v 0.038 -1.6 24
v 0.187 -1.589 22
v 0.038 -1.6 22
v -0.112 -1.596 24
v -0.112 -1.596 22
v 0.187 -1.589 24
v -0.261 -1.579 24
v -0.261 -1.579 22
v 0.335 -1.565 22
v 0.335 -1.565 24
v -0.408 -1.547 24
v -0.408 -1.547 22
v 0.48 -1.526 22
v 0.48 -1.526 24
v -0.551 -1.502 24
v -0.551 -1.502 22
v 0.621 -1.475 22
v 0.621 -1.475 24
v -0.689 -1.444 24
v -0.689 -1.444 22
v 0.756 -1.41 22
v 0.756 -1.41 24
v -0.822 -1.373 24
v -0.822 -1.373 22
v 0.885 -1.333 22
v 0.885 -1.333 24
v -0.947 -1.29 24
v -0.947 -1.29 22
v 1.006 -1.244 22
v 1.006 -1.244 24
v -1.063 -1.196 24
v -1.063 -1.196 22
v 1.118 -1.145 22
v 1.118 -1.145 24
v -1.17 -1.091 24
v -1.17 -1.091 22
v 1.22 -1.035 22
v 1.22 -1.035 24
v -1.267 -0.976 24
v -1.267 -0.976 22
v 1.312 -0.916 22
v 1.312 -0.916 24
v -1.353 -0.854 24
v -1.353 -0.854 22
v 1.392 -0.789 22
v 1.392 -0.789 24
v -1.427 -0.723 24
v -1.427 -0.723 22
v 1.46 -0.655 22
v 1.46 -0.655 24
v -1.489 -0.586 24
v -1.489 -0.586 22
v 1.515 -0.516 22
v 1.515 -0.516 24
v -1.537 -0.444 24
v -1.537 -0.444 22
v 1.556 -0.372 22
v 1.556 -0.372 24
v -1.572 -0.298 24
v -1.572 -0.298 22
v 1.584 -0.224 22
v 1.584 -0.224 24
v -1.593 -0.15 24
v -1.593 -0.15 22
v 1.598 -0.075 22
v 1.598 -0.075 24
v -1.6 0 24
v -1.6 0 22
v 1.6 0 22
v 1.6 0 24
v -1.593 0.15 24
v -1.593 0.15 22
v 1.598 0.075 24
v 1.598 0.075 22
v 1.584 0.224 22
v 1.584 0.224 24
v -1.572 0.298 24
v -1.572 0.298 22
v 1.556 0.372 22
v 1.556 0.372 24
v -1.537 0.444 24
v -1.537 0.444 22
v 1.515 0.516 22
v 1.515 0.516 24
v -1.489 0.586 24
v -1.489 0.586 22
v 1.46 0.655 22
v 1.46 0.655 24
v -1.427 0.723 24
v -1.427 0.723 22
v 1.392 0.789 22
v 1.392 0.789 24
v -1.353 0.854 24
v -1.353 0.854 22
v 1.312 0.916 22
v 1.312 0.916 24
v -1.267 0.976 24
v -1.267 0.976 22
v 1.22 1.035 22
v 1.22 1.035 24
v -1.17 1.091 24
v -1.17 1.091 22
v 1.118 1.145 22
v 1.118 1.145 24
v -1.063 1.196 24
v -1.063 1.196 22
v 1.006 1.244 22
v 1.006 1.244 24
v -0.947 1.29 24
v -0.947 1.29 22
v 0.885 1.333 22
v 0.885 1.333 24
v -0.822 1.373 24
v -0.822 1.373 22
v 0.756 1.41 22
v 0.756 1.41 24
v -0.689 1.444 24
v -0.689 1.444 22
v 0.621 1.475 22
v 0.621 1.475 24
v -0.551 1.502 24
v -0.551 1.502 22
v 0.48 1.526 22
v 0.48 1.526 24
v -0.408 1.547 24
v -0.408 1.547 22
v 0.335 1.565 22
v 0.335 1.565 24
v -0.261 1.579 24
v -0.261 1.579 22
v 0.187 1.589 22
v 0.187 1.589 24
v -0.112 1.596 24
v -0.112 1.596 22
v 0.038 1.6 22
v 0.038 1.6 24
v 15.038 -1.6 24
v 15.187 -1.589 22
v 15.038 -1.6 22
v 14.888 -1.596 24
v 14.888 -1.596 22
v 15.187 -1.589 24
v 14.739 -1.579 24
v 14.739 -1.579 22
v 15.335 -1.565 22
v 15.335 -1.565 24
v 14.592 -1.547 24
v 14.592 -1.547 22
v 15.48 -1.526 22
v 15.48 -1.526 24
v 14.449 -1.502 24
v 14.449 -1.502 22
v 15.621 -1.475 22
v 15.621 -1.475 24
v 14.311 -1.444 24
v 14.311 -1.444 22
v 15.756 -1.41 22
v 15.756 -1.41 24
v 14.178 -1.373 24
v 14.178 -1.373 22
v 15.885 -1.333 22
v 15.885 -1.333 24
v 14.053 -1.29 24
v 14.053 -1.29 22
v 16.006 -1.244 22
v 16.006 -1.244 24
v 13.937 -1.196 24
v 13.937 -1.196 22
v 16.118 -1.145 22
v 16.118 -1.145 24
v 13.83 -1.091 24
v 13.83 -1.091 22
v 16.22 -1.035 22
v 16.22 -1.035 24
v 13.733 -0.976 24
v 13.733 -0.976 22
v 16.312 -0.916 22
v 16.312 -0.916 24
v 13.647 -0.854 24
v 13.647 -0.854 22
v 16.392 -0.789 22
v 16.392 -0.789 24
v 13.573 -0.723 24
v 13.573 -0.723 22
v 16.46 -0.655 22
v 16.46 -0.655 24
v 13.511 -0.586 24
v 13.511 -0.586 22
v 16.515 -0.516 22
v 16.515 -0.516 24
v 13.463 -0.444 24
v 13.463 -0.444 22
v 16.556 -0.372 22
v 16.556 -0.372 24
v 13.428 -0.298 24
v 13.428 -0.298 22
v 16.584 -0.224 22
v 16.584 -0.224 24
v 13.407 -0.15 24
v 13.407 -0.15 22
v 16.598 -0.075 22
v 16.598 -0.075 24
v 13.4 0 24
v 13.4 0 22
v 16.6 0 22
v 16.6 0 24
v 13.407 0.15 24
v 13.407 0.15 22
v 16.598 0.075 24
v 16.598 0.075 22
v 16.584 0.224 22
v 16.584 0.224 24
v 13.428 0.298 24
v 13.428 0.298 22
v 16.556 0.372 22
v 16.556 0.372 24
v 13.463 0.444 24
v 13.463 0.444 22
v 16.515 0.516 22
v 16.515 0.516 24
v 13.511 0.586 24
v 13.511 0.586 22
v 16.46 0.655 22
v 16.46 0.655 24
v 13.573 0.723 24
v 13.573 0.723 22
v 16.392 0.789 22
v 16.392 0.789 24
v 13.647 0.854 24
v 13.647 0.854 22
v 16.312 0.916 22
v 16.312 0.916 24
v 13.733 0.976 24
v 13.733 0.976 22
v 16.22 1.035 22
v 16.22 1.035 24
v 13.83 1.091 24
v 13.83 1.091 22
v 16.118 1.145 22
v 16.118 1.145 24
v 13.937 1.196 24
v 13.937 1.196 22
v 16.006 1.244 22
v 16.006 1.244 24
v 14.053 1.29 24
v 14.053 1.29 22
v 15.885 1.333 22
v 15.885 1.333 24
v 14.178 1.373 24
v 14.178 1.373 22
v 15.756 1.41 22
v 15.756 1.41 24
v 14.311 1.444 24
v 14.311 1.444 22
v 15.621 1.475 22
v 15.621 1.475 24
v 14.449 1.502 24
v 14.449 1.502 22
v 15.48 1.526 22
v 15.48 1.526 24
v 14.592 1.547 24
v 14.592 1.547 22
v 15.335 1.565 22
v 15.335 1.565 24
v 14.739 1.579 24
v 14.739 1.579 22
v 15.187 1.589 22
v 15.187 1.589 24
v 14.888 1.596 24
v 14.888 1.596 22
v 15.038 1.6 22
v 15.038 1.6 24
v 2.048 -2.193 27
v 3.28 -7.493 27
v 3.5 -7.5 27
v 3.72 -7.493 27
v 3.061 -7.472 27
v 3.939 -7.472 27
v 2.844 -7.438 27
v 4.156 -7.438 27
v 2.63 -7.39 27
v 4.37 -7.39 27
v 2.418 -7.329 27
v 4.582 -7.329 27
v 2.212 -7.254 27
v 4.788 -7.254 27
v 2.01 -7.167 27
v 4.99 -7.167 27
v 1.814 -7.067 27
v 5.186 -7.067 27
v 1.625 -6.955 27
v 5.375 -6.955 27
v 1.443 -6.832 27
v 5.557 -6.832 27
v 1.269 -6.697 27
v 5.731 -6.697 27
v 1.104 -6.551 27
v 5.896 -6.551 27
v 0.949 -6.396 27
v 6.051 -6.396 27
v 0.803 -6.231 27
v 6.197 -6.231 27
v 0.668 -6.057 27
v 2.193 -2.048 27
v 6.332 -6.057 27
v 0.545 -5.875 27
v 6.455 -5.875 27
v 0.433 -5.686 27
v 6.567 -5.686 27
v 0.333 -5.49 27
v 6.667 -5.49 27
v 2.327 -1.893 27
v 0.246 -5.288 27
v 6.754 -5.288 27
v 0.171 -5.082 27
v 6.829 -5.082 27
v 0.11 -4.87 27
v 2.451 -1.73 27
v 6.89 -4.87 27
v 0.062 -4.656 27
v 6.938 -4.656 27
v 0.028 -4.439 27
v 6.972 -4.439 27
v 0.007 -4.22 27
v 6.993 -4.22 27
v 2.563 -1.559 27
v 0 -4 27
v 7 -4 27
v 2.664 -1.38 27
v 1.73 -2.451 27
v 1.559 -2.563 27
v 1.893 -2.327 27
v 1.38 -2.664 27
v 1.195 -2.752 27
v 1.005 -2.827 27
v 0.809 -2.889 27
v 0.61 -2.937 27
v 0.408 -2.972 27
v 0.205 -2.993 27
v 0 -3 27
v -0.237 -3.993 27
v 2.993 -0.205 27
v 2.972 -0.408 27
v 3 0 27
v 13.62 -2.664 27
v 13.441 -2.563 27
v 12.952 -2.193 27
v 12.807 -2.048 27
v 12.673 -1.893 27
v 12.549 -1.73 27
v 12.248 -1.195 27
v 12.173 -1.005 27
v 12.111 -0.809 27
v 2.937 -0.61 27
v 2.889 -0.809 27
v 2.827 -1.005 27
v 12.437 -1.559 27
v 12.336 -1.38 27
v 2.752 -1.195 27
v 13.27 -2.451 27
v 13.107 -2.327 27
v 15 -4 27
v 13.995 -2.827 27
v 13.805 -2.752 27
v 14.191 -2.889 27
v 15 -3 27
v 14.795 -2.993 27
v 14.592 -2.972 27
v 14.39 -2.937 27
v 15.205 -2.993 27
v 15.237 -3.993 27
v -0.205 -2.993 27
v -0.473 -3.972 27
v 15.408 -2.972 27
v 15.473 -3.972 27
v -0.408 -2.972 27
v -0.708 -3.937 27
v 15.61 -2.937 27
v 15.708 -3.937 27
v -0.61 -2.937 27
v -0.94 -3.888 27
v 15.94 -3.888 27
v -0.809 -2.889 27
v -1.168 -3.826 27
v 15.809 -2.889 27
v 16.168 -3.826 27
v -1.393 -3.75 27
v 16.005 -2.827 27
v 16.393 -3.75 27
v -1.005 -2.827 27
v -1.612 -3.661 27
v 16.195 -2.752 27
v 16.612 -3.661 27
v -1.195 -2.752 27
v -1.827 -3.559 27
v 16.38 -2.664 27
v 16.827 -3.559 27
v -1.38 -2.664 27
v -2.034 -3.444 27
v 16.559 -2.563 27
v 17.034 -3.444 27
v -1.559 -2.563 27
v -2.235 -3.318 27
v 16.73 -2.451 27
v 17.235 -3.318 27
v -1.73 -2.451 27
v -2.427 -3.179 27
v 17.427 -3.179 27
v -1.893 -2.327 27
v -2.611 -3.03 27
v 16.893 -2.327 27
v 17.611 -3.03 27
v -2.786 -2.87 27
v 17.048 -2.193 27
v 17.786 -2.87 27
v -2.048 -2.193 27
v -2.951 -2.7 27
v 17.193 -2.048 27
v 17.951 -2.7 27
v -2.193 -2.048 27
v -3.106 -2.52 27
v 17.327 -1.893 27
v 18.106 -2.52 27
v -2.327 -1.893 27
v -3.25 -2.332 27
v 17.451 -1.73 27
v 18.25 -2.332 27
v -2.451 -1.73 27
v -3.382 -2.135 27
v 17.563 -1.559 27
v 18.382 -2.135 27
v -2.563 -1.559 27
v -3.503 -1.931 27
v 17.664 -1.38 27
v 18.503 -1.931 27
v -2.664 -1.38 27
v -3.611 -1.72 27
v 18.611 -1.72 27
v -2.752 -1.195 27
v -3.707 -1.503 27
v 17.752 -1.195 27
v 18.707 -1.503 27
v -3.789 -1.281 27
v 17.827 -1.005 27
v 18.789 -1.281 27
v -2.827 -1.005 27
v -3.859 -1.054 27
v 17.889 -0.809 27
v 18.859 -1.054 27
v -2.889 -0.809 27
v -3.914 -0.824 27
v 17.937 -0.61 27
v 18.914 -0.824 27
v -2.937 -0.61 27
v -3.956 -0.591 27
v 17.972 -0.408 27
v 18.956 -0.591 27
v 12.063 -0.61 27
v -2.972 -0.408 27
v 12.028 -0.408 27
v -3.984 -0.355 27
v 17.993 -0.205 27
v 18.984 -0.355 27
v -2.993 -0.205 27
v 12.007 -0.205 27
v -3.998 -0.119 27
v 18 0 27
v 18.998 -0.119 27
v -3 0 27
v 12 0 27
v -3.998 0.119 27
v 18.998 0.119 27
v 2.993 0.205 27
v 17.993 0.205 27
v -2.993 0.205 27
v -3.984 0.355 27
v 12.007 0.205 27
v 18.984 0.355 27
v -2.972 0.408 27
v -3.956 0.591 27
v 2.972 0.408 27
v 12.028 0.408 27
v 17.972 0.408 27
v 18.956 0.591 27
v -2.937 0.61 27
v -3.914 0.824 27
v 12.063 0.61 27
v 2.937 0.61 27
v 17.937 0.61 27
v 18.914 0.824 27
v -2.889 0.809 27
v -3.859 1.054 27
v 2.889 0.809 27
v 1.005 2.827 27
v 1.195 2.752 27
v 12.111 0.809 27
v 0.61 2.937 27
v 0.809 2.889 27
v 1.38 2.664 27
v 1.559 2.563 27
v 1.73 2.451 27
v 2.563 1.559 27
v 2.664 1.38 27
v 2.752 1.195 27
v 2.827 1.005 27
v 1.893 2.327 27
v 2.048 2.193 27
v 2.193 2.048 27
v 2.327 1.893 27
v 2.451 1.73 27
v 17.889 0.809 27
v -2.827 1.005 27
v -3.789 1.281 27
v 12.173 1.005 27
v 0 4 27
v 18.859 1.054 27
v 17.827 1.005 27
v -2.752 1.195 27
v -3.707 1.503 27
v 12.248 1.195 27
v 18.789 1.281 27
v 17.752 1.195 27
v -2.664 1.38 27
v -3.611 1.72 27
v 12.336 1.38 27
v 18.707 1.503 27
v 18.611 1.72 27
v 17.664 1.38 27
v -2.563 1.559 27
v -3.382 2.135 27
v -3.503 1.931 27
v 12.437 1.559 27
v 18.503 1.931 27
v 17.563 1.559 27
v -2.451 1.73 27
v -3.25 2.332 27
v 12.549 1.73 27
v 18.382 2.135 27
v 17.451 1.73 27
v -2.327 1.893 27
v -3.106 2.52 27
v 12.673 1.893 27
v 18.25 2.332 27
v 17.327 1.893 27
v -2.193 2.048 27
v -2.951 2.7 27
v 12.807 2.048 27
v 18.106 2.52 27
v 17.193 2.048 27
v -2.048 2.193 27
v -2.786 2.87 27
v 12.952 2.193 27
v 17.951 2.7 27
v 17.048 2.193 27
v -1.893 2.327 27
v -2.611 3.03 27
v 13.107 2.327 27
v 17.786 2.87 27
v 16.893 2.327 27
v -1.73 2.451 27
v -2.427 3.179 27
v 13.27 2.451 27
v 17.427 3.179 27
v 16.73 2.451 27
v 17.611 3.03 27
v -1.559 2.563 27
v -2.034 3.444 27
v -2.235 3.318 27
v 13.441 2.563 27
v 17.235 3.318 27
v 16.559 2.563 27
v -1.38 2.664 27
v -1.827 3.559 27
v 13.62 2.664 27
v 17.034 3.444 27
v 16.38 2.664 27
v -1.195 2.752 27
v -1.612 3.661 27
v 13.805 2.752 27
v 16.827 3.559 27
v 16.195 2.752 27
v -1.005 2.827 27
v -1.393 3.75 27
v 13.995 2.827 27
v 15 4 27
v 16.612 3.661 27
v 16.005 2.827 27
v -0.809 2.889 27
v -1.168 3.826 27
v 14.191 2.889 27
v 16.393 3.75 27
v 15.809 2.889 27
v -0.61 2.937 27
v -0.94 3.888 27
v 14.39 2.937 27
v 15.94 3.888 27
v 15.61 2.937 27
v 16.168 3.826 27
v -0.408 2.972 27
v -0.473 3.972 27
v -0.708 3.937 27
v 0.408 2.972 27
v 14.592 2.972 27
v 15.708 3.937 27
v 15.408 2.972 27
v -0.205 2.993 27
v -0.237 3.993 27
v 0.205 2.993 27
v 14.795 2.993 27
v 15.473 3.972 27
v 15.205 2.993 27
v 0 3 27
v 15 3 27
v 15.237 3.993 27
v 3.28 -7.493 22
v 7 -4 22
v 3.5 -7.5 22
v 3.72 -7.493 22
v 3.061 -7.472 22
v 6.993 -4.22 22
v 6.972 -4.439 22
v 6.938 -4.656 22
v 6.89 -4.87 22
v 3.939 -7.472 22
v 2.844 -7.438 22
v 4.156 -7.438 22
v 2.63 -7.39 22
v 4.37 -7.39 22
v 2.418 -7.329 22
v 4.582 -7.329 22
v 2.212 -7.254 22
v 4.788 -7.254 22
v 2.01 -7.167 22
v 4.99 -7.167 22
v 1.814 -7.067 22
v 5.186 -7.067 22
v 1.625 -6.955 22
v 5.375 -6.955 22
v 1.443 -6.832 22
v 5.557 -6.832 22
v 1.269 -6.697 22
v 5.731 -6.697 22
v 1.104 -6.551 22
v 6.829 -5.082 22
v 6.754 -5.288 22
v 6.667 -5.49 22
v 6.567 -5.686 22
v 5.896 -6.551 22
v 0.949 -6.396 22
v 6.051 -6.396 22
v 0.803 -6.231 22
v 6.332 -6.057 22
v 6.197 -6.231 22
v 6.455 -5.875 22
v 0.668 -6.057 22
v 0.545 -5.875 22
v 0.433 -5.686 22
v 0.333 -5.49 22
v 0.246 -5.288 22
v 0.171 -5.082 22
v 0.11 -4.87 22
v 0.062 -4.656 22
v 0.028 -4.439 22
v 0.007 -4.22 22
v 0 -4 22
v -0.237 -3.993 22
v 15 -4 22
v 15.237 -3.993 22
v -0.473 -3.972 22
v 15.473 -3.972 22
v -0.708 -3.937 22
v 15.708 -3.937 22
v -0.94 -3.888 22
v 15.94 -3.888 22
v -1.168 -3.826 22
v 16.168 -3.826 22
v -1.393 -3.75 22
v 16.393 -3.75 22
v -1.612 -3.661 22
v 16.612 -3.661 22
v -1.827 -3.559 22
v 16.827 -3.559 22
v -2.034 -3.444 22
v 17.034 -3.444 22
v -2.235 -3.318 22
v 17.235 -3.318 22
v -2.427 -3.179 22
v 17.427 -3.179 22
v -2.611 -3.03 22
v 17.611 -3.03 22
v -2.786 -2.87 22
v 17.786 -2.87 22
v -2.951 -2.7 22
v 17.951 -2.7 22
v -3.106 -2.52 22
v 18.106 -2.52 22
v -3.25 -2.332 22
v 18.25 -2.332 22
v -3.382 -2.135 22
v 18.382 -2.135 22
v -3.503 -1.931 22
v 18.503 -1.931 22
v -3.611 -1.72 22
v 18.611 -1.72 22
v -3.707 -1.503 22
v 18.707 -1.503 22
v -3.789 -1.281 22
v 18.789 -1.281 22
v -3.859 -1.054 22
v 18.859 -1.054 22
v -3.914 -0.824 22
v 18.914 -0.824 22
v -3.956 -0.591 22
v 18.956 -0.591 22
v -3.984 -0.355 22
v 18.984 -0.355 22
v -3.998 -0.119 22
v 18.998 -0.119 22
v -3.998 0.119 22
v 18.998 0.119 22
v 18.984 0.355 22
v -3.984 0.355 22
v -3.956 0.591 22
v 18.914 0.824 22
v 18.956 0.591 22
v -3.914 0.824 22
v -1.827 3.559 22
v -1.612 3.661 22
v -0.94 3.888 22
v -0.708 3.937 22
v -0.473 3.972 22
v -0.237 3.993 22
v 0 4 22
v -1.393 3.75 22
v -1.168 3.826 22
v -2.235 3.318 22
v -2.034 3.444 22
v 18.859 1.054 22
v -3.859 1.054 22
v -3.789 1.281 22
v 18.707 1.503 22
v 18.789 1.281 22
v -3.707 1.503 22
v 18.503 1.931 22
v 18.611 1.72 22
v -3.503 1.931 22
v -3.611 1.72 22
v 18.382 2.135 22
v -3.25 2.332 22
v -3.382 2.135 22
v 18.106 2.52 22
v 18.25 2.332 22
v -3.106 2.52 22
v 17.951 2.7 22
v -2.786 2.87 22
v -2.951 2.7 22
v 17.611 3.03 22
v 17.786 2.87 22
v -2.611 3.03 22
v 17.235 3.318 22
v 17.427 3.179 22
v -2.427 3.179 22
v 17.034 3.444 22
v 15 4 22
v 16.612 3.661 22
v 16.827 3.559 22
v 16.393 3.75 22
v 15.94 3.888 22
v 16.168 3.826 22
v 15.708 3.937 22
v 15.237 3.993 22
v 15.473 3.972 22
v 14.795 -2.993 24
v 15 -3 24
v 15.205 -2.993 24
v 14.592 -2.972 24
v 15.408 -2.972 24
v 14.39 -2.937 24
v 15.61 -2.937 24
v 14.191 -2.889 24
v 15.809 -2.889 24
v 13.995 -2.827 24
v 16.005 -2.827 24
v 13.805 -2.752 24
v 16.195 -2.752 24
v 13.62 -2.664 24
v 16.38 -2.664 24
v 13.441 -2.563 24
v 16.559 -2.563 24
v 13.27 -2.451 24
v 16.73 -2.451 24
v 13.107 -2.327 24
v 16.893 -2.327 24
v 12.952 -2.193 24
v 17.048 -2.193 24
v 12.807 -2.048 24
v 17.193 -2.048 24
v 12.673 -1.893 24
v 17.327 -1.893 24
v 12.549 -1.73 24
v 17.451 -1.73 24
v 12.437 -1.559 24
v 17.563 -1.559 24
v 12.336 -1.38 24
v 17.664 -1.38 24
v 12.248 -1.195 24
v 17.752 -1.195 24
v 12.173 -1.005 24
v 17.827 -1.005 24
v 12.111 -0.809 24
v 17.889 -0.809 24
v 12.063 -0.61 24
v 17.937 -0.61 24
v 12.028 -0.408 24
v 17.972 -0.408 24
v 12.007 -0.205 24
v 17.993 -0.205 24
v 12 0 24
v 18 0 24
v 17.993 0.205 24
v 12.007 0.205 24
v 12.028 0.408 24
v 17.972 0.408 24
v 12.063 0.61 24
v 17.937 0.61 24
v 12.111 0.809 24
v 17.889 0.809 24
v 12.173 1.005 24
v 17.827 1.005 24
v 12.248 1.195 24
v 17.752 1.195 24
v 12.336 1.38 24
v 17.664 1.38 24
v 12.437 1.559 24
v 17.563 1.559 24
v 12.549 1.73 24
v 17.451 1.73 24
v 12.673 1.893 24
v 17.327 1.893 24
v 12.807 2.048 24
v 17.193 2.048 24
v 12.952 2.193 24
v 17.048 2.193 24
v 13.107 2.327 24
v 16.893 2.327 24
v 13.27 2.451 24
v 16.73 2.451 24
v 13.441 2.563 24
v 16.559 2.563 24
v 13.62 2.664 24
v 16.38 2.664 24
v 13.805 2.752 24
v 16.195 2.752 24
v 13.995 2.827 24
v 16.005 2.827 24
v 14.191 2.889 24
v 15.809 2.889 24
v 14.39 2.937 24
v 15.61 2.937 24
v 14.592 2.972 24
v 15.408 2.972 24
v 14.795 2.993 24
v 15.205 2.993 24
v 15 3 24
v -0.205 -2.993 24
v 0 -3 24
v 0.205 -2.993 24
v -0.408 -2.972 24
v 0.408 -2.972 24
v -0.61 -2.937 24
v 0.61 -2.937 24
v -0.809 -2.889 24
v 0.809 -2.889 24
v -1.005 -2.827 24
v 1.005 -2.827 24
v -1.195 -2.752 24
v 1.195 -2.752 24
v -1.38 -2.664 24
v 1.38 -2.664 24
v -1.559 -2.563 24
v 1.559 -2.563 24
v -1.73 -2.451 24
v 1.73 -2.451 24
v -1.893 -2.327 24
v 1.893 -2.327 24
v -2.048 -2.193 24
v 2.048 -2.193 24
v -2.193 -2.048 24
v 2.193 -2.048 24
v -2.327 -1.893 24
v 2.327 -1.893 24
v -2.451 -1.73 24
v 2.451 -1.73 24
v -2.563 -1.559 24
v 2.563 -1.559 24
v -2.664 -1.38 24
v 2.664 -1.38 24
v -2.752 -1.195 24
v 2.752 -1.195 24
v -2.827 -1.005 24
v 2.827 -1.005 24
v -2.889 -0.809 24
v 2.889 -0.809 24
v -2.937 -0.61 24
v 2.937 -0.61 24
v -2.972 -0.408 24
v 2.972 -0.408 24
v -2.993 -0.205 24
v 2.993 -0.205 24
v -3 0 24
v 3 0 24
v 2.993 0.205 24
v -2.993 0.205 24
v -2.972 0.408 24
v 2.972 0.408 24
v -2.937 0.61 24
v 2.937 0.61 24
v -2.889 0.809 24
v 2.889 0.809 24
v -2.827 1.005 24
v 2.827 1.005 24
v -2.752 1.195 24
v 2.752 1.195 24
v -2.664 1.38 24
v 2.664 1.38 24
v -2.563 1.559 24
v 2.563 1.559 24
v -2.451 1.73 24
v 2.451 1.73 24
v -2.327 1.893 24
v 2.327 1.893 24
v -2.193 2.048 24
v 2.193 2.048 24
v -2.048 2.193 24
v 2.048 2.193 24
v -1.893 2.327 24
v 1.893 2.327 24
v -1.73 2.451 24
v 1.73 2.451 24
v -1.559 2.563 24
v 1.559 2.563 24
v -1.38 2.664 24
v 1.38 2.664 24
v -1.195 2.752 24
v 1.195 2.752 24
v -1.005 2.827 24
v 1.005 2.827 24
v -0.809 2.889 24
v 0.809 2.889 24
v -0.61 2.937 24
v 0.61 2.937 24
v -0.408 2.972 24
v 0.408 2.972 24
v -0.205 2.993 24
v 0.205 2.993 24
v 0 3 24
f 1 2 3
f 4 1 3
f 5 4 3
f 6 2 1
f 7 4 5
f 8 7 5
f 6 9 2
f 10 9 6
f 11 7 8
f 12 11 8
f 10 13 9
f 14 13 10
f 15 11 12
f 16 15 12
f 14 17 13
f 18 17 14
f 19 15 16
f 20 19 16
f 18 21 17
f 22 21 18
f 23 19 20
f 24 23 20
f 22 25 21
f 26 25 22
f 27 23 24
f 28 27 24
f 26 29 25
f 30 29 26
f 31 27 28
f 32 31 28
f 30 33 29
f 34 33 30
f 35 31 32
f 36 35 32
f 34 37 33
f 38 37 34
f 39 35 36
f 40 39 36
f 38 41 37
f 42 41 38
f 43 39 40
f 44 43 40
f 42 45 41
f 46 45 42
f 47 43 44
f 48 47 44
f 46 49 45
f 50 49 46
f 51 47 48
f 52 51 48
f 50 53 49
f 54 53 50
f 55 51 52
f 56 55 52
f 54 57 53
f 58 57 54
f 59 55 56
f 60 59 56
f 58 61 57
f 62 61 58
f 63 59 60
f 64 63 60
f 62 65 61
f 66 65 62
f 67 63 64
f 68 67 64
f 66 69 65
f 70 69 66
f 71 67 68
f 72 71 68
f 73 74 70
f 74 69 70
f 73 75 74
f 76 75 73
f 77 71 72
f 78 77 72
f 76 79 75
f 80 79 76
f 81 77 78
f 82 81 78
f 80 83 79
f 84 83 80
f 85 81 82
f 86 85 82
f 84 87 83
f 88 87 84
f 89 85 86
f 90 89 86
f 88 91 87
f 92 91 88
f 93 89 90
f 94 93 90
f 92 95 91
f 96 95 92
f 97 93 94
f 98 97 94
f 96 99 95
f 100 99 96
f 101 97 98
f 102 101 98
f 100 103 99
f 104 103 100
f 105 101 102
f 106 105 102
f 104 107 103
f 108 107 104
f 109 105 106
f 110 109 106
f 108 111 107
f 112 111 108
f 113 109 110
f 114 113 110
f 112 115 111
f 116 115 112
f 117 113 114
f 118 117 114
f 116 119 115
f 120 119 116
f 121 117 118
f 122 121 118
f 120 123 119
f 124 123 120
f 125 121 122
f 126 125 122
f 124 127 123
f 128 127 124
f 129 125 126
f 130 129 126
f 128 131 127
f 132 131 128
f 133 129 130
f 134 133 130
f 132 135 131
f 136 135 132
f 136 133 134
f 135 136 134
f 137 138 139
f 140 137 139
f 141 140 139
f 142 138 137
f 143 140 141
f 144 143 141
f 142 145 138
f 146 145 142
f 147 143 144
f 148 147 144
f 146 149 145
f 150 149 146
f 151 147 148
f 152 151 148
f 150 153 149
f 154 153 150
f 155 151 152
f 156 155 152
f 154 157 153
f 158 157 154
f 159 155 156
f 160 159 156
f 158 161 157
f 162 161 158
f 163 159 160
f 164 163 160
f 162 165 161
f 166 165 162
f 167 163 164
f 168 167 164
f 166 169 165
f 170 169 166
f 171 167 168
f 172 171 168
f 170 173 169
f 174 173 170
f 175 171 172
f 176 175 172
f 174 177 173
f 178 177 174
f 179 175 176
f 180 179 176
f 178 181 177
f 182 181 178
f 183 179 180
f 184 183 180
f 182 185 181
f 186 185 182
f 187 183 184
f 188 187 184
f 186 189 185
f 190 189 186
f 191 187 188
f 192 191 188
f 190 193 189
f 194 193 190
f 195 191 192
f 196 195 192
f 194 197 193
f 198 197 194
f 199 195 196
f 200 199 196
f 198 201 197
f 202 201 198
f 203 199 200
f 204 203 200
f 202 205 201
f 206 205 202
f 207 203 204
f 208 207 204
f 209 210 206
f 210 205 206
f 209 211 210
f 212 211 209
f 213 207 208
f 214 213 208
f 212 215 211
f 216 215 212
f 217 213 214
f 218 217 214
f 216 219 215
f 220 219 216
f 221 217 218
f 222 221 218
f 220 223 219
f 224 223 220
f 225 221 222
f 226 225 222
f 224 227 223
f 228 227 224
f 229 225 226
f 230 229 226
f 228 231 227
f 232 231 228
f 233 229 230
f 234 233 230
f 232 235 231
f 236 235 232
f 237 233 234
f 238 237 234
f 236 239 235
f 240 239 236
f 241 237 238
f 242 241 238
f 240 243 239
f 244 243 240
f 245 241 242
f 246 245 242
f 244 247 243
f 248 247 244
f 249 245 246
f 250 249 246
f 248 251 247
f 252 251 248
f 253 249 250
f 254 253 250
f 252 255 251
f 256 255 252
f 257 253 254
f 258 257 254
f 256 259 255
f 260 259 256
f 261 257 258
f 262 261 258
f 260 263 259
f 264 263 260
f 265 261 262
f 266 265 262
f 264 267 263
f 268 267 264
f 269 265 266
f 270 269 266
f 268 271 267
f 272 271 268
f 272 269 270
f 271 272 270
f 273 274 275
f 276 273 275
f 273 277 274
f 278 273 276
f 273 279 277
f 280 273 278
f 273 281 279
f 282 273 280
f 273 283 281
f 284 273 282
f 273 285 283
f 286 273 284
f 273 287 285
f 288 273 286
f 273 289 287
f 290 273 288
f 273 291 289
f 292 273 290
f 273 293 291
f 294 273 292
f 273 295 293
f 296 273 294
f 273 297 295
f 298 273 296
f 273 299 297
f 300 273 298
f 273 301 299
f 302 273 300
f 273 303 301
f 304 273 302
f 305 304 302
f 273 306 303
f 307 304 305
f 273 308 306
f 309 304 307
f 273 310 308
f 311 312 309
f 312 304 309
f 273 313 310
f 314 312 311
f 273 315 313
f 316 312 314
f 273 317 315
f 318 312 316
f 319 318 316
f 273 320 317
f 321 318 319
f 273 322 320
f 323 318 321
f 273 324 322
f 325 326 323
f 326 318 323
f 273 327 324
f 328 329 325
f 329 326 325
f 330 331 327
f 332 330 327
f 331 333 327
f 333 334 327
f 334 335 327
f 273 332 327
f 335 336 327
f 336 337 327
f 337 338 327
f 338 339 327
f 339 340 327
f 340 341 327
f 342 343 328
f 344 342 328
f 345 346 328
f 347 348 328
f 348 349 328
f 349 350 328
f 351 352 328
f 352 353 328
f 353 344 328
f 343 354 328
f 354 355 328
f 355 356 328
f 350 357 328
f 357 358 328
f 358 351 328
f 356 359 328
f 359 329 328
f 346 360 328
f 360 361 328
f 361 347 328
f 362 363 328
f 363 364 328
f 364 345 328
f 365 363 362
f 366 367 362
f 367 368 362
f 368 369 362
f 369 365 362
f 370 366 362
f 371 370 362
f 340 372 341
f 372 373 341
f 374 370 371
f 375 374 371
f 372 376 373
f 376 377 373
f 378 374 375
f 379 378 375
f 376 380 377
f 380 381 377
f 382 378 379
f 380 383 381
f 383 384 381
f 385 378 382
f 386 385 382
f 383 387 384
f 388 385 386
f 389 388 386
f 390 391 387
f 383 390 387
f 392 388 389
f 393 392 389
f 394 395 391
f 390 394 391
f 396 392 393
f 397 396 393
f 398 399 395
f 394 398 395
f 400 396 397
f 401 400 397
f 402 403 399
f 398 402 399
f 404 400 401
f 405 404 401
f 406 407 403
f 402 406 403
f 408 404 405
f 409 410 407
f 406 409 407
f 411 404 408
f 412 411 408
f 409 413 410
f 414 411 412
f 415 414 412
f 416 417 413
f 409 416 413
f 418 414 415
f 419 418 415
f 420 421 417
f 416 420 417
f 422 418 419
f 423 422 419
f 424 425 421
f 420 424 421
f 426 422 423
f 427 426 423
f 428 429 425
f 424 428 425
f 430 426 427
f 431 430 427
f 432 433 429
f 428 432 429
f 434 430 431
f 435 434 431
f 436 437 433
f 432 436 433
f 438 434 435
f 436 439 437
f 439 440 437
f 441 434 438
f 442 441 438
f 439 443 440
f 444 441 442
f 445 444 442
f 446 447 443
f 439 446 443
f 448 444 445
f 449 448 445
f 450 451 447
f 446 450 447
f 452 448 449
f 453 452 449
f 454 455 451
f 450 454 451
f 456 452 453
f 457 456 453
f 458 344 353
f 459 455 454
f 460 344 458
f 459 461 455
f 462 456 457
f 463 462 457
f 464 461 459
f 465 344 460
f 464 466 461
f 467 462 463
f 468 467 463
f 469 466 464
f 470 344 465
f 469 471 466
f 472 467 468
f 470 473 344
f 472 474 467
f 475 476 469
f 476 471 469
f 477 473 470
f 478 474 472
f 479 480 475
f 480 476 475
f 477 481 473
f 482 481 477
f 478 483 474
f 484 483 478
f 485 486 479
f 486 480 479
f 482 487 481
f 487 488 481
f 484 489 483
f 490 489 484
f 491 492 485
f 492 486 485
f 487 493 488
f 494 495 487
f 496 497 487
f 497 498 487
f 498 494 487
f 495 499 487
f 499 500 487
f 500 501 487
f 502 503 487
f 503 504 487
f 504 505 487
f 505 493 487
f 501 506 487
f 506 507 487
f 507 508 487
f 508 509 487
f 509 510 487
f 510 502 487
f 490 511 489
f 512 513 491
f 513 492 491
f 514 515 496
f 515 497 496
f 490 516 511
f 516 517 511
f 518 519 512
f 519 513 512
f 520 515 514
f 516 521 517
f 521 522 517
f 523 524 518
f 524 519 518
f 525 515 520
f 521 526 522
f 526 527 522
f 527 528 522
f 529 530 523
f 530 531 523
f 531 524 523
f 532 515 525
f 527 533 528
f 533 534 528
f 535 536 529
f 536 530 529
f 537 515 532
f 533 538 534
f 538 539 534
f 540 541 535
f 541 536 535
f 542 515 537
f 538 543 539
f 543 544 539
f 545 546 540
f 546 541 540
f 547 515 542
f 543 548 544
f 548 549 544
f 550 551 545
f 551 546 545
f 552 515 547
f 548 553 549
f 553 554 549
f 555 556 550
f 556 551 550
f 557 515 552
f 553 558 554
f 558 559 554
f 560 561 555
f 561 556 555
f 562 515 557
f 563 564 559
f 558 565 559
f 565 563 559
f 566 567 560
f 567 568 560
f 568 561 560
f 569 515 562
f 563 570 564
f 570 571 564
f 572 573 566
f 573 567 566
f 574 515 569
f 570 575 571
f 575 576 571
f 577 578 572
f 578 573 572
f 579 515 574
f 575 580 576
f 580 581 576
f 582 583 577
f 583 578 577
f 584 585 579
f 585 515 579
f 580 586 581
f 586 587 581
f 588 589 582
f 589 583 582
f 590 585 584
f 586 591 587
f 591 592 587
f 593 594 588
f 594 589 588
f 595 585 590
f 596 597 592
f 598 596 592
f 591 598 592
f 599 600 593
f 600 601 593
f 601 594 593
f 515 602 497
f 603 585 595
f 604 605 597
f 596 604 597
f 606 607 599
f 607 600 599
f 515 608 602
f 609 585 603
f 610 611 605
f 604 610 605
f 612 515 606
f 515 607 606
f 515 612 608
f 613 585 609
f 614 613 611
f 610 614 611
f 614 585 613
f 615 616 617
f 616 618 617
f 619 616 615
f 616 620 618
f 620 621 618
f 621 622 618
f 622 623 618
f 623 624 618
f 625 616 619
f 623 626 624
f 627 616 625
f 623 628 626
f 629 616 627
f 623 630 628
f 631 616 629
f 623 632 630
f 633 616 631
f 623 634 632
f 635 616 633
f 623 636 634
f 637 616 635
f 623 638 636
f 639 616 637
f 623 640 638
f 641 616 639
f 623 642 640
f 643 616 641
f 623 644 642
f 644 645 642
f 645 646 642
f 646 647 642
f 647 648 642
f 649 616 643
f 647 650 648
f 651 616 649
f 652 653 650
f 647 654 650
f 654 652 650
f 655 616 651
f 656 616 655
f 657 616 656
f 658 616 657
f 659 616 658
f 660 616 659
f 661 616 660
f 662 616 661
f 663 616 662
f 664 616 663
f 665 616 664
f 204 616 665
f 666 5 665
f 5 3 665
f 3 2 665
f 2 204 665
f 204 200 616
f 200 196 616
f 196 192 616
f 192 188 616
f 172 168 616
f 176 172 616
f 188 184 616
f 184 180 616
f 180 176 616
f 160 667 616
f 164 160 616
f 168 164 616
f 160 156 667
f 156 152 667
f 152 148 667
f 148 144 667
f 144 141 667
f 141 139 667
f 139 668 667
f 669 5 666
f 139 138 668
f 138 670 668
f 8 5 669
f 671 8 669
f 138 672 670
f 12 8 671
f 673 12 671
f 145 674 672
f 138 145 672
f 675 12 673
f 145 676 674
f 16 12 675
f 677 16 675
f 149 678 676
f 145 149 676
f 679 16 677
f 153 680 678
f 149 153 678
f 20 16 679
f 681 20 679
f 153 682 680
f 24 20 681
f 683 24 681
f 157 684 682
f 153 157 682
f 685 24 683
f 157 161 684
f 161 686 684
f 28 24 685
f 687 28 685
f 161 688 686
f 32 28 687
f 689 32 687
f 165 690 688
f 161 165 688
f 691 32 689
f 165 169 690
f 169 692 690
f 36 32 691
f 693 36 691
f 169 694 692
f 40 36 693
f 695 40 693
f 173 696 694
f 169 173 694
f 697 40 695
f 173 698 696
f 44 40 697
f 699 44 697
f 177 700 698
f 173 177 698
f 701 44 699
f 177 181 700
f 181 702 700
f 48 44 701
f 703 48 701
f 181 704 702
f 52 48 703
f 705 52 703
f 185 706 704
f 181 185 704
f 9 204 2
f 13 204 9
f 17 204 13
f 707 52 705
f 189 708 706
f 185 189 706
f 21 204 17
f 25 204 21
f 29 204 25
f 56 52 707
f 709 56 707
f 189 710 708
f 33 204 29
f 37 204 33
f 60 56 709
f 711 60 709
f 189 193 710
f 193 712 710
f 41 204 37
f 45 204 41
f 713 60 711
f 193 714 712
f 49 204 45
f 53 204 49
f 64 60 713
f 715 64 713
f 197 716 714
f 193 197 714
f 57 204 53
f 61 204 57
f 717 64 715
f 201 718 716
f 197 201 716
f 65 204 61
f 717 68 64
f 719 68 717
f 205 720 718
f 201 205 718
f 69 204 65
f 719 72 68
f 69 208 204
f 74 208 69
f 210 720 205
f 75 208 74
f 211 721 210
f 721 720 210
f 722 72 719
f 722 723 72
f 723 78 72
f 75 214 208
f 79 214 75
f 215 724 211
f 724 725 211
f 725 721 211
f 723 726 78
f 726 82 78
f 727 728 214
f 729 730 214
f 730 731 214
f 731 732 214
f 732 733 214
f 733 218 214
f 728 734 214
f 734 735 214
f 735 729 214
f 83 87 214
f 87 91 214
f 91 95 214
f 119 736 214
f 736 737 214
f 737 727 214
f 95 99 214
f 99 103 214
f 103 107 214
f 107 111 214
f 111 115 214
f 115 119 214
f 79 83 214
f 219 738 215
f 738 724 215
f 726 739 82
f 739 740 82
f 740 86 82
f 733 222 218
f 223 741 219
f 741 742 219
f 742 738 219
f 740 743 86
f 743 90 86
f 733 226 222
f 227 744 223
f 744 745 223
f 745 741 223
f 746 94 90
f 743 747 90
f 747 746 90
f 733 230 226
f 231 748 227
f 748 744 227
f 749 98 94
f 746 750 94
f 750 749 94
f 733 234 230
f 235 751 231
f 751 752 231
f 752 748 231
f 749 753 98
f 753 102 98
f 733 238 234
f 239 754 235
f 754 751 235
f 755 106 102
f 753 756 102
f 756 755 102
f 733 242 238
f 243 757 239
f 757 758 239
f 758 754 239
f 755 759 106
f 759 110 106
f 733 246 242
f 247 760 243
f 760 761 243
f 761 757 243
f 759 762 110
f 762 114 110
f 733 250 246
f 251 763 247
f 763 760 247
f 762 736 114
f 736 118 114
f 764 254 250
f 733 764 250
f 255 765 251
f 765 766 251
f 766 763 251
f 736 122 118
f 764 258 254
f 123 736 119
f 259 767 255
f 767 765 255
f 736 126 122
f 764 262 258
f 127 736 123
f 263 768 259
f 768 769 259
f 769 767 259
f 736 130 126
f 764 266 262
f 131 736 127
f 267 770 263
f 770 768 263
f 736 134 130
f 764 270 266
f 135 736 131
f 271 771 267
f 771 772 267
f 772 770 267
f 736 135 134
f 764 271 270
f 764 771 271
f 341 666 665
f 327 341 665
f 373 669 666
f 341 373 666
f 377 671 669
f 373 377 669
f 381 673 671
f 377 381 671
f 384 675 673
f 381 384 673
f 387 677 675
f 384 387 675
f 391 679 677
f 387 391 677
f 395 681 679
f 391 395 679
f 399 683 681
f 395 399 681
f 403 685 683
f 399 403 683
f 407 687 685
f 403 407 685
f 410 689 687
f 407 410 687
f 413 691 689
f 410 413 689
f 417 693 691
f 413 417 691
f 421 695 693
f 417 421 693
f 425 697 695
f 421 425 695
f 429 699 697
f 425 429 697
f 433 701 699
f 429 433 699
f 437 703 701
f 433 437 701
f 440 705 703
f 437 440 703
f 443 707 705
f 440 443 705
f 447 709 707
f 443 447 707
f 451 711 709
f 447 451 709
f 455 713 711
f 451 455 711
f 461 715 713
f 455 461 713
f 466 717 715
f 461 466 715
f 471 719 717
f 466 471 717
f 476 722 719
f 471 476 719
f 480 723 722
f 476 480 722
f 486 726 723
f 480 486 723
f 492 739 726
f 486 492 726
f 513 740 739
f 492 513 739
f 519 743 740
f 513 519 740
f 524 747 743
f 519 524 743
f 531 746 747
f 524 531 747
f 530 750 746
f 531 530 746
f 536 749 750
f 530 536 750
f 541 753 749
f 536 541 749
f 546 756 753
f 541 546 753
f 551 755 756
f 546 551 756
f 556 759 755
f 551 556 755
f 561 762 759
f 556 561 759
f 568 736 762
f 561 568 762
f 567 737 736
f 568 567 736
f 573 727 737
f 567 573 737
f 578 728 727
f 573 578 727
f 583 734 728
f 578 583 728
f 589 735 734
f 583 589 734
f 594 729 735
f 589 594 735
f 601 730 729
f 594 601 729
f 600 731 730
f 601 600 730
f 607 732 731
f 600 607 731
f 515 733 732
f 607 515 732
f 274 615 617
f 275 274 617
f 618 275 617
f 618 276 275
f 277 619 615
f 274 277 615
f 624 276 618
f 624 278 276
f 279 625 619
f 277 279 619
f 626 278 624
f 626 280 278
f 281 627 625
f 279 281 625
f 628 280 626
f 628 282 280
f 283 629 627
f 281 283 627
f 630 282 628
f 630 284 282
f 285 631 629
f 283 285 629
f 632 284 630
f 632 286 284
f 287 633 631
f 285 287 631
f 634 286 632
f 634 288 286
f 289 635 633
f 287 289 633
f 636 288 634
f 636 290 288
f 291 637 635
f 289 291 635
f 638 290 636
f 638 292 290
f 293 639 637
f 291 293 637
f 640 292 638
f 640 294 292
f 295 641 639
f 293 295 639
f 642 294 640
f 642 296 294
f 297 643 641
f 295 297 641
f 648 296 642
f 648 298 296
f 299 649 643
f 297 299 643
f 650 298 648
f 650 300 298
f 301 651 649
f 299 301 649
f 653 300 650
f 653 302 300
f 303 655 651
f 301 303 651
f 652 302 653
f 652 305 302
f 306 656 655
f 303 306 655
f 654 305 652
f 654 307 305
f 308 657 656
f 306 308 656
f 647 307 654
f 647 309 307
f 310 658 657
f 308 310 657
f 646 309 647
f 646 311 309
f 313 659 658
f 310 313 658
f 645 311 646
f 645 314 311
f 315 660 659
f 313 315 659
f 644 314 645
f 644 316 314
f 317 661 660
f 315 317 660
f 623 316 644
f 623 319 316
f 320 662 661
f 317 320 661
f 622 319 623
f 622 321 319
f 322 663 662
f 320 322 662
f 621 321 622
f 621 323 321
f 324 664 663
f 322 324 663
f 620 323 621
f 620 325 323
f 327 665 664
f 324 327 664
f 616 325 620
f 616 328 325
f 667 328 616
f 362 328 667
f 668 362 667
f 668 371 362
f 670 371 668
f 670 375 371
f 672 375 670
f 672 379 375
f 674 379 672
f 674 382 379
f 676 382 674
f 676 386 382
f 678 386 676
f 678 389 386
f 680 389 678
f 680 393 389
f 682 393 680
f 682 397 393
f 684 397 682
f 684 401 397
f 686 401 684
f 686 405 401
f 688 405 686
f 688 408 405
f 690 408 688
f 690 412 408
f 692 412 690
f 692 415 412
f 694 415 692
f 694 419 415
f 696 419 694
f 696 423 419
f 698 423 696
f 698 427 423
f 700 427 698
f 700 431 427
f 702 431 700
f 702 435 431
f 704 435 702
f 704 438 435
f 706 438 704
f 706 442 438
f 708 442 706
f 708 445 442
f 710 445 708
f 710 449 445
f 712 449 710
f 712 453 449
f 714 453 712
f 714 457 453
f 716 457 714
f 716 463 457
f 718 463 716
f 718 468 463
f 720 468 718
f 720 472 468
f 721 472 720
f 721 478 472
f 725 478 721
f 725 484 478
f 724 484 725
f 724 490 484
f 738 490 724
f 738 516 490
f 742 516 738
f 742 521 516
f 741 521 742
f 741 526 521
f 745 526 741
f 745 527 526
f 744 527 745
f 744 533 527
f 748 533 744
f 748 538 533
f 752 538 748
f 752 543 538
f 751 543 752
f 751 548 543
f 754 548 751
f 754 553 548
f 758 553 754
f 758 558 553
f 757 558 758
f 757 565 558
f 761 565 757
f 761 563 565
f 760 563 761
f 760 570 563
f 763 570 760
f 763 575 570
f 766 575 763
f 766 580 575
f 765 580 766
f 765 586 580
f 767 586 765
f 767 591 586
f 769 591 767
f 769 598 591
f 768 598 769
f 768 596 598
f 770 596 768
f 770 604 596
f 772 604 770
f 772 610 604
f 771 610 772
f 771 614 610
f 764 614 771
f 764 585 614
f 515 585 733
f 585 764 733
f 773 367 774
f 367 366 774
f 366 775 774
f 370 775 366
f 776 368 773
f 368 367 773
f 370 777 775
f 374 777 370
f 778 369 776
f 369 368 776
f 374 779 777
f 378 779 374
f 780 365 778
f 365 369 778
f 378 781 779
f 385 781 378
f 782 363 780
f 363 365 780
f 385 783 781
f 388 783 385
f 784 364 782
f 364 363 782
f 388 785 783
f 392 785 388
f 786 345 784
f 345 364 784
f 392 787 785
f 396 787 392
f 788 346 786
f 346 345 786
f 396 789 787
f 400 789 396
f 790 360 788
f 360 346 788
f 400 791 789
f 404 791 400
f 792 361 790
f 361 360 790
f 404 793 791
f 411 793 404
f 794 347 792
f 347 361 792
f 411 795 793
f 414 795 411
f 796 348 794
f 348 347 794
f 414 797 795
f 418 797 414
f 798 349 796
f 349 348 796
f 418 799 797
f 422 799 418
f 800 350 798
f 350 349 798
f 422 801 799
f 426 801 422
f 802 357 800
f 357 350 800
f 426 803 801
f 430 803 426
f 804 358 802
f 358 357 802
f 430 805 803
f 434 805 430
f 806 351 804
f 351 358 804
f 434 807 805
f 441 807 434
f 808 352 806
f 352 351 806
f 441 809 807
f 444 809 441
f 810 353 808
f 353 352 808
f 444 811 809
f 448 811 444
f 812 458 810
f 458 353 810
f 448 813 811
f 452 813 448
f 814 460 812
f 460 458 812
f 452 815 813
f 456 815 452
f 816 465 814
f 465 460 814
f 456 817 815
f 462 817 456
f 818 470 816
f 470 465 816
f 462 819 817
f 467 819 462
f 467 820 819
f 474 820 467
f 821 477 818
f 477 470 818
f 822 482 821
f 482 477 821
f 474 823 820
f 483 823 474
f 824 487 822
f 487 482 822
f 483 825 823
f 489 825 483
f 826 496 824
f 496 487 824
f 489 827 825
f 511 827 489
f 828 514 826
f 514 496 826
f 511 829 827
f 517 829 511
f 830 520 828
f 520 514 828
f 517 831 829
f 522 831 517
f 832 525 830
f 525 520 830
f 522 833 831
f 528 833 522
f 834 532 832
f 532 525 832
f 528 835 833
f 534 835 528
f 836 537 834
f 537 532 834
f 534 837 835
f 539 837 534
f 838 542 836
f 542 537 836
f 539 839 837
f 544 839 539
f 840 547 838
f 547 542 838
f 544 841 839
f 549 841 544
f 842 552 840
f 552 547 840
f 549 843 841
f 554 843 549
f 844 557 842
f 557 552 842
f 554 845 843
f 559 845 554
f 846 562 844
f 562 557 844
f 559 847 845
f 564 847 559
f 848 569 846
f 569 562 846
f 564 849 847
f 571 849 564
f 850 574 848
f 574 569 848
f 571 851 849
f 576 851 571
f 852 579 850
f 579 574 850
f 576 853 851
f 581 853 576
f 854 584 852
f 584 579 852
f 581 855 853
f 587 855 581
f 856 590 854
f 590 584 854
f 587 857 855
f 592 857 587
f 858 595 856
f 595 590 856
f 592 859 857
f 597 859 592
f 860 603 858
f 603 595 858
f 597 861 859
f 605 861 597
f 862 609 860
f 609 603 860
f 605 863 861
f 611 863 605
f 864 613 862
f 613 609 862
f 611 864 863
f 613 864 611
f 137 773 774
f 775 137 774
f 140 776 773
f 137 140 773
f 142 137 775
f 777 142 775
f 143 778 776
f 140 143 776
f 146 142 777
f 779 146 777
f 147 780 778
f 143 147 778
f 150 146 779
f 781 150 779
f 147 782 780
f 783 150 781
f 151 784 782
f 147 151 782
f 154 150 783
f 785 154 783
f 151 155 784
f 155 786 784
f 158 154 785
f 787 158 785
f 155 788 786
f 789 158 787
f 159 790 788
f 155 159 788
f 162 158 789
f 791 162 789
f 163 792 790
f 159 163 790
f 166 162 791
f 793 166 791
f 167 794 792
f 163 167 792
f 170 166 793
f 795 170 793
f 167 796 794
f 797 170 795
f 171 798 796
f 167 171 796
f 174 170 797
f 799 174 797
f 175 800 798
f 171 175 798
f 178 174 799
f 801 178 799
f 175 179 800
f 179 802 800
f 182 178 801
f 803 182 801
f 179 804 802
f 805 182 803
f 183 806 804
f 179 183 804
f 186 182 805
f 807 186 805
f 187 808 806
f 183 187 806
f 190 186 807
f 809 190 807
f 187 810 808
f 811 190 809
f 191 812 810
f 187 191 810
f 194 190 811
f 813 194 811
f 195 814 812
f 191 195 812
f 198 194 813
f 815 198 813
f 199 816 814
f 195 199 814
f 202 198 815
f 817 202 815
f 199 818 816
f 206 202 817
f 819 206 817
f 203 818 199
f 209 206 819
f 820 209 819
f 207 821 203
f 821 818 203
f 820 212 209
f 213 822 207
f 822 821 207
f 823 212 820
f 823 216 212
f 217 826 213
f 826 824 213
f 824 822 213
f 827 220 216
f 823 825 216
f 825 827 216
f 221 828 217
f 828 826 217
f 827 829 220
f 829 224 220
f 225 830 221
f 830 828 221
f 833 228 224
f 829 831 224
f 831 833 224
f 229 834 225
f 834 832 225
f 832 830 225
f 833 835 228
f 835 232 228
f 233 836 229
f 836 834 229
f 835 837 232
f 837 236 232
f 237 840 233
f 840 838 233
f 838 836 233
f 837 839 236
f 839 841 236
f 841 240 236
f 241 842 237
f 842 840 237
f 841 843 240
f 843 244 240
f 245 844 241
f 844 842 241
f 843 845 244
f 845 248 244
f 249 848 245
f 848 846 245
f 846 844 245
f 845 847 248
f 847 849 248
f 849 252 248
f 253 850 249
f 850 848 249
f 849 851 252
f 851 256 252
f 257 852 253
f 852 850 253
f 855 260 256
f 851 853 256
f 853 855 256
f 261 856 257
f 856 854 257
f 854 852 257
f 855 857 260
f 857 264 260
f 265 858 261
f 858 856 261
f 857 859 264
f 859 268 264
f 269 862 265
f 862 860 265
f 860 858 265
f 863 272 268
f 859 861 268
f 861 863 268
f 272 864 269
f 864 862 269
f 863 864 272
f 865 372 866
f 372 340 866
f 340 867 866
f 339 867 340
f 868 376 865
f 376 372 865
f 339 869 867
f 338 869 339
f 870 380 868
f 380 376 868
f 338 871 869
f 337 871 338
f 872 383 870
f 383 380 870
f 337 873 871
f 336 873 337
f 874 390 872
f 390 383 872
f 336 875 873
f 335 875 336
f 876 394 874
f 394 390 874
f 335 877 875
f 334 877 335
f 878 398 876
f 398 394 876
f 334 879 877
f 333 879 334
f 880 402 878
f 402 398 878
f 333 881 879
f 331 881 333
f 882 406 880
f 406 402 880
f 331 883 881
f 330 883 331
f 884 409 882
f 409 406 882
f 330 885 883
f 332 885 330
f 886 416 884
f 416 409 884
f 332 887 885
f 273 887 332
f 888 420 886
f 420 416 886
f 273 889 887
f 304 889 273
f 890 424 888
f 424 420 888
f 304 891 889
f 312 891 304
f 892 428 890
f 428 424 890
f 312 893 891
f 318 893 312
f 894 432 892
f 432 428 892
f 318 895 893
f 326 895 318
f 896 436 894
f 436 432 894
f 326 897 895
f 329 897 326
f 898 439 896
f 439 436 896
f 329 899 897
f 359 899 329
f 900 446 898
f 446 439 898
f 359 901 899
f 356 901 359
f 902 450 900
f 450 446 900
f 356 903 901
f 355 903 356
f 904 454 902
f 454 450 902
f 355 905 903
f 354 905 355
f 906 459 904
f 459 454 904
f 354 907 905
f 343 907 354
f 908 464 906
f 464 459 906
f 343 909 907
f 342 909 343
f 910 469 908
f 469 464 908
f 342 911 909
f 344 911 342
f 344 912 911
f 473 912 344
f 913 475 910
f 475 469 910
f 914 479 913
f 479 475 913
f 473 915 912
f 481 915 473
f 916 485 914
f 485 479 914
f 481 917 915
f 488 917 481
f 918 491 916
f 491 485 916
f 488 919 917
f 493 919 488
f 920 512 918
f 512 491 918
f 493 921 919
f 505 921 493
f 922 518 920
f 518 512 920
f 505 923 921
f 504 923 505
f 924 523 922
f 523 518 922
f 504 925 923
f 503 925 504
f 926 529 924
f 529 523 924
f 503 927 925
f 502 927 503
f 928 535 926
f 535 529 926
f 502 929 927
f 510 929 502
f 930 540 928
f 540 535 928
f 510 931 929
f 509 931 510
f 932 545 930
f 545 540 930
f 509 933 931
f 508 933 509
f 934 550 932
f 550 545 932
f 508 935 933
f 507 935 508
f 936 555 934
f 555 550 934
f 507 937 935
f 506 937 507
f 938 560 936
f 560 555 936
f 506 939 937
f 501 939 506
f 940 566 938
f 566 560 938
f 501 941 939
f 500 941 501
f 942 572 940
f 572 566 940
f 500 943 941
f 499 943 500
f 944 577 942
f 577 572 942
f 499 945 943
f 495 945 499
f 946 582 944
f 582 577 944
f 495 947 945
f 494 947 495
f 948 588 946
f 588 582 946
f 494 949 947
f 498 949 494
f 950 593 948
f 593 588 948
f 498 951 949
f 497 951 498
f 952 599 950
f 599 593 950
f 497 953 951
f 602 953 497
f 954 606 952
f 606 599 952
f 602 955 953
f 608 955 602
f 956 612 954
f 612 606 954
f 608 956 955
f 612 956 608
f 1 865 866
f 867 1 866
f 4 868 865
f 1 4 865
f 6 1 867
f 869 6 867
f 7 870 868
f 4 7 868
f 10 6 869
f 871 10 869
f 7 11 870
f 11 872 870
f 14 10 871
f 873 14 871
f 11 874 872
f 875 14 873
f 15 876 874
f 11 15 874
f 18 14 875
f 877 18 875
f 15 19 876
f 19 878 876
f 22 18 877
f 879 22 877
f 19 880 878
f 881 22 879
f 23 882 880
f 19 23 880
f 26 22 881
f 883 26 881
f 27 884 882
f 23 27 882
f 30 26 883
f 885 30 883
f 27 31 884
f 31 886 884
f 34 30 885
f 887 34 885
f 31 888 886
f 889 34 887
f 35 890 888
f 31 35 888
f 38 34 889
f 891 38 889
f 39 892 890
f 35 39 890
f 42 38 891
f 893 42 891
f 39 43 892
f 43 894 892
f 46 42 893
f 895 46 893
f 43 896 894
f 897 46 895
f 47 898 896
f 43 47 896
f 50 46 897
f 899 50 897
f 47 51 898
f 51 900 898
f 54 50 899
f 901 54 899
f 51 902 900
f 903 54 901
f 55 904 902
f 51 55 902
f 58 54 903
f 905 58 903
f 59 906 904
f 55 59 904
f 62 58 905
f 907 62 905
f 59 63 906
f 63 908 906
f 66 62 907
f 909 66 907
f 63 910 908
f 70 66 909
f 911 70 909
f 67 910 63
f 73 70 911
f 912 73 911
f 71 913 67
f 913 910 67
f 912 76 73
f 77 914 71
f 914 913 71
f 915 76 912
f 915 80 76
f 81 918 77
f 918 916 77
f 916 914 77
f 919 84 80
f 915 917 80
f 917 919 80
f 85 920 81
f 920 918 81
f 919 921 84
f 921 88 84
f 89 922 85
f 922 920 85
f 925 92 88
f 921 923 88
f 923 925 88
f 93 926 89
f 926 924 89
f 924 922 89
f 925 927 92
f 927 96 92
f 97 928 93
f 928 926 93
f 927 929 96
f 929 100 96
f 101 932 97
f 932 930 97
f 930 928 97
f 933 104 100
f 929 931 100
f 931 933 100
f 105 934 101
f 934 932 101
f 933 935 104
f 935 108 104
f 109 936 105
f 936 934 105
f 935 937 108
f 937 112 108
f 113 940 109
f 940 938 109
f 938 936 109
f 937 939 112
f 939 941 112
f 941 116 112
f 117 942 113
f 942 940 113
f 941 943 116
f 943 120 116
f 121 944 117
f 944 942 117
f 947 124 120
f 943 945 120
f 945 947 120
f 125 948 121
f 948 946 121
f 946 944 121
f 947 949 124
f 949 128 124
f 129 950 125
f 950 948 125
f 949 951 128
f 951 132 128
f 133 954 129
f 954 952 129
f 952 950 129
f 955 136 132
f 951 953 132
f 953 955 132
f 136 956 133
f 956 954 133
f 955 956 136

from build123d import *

# Parameters (mm, degrees)
SKETCH1_R           = 1.6
BOSS_EXTRUDE1_DEPTH = 5
SKETCH2_R           = 3
CUT_EXTRUDE1_DEPTH  = 3


with BuildPart() as part:
    # Sketch1 → Boss-Extrude1 (new body)
    with BuildSketch(Plane.XY.offset(22)):
        with BuildLine():
            Line((0, 4), (15, 4))
            ThreePointArc((15, 4), (19, 0), (15, -4))
            Line((15, -4), (7, -4))
            ThreePointArc((7, -4), (3.5, -7.5), (0, -4))
            ThreePointArc((0, -4), (-4, 0), (0, 4))
        make_face()
        Circle(SKETCH1_R, mode=Mode.SUBTRACT)
        with Locations((15, 0)):
            Circle(SKETCH1_R, mode=Mode.SUBTRACT)
    extrude(amount=BOSS_EXTRUDE1_DEPTH)

    # Sketch2 → Cut-Extrude1 (cut)
    with BuildSketch(Plane.XY.offset(27)):
        Circle(SKETCH2_R)
        with Locations((15, 0)):
            Circle(SKETCH2_R)
    extrude(amount=-CUT_EXTRUDE1_DEPTH, mode=Mode.SUBTRACT)


solid = part.part
